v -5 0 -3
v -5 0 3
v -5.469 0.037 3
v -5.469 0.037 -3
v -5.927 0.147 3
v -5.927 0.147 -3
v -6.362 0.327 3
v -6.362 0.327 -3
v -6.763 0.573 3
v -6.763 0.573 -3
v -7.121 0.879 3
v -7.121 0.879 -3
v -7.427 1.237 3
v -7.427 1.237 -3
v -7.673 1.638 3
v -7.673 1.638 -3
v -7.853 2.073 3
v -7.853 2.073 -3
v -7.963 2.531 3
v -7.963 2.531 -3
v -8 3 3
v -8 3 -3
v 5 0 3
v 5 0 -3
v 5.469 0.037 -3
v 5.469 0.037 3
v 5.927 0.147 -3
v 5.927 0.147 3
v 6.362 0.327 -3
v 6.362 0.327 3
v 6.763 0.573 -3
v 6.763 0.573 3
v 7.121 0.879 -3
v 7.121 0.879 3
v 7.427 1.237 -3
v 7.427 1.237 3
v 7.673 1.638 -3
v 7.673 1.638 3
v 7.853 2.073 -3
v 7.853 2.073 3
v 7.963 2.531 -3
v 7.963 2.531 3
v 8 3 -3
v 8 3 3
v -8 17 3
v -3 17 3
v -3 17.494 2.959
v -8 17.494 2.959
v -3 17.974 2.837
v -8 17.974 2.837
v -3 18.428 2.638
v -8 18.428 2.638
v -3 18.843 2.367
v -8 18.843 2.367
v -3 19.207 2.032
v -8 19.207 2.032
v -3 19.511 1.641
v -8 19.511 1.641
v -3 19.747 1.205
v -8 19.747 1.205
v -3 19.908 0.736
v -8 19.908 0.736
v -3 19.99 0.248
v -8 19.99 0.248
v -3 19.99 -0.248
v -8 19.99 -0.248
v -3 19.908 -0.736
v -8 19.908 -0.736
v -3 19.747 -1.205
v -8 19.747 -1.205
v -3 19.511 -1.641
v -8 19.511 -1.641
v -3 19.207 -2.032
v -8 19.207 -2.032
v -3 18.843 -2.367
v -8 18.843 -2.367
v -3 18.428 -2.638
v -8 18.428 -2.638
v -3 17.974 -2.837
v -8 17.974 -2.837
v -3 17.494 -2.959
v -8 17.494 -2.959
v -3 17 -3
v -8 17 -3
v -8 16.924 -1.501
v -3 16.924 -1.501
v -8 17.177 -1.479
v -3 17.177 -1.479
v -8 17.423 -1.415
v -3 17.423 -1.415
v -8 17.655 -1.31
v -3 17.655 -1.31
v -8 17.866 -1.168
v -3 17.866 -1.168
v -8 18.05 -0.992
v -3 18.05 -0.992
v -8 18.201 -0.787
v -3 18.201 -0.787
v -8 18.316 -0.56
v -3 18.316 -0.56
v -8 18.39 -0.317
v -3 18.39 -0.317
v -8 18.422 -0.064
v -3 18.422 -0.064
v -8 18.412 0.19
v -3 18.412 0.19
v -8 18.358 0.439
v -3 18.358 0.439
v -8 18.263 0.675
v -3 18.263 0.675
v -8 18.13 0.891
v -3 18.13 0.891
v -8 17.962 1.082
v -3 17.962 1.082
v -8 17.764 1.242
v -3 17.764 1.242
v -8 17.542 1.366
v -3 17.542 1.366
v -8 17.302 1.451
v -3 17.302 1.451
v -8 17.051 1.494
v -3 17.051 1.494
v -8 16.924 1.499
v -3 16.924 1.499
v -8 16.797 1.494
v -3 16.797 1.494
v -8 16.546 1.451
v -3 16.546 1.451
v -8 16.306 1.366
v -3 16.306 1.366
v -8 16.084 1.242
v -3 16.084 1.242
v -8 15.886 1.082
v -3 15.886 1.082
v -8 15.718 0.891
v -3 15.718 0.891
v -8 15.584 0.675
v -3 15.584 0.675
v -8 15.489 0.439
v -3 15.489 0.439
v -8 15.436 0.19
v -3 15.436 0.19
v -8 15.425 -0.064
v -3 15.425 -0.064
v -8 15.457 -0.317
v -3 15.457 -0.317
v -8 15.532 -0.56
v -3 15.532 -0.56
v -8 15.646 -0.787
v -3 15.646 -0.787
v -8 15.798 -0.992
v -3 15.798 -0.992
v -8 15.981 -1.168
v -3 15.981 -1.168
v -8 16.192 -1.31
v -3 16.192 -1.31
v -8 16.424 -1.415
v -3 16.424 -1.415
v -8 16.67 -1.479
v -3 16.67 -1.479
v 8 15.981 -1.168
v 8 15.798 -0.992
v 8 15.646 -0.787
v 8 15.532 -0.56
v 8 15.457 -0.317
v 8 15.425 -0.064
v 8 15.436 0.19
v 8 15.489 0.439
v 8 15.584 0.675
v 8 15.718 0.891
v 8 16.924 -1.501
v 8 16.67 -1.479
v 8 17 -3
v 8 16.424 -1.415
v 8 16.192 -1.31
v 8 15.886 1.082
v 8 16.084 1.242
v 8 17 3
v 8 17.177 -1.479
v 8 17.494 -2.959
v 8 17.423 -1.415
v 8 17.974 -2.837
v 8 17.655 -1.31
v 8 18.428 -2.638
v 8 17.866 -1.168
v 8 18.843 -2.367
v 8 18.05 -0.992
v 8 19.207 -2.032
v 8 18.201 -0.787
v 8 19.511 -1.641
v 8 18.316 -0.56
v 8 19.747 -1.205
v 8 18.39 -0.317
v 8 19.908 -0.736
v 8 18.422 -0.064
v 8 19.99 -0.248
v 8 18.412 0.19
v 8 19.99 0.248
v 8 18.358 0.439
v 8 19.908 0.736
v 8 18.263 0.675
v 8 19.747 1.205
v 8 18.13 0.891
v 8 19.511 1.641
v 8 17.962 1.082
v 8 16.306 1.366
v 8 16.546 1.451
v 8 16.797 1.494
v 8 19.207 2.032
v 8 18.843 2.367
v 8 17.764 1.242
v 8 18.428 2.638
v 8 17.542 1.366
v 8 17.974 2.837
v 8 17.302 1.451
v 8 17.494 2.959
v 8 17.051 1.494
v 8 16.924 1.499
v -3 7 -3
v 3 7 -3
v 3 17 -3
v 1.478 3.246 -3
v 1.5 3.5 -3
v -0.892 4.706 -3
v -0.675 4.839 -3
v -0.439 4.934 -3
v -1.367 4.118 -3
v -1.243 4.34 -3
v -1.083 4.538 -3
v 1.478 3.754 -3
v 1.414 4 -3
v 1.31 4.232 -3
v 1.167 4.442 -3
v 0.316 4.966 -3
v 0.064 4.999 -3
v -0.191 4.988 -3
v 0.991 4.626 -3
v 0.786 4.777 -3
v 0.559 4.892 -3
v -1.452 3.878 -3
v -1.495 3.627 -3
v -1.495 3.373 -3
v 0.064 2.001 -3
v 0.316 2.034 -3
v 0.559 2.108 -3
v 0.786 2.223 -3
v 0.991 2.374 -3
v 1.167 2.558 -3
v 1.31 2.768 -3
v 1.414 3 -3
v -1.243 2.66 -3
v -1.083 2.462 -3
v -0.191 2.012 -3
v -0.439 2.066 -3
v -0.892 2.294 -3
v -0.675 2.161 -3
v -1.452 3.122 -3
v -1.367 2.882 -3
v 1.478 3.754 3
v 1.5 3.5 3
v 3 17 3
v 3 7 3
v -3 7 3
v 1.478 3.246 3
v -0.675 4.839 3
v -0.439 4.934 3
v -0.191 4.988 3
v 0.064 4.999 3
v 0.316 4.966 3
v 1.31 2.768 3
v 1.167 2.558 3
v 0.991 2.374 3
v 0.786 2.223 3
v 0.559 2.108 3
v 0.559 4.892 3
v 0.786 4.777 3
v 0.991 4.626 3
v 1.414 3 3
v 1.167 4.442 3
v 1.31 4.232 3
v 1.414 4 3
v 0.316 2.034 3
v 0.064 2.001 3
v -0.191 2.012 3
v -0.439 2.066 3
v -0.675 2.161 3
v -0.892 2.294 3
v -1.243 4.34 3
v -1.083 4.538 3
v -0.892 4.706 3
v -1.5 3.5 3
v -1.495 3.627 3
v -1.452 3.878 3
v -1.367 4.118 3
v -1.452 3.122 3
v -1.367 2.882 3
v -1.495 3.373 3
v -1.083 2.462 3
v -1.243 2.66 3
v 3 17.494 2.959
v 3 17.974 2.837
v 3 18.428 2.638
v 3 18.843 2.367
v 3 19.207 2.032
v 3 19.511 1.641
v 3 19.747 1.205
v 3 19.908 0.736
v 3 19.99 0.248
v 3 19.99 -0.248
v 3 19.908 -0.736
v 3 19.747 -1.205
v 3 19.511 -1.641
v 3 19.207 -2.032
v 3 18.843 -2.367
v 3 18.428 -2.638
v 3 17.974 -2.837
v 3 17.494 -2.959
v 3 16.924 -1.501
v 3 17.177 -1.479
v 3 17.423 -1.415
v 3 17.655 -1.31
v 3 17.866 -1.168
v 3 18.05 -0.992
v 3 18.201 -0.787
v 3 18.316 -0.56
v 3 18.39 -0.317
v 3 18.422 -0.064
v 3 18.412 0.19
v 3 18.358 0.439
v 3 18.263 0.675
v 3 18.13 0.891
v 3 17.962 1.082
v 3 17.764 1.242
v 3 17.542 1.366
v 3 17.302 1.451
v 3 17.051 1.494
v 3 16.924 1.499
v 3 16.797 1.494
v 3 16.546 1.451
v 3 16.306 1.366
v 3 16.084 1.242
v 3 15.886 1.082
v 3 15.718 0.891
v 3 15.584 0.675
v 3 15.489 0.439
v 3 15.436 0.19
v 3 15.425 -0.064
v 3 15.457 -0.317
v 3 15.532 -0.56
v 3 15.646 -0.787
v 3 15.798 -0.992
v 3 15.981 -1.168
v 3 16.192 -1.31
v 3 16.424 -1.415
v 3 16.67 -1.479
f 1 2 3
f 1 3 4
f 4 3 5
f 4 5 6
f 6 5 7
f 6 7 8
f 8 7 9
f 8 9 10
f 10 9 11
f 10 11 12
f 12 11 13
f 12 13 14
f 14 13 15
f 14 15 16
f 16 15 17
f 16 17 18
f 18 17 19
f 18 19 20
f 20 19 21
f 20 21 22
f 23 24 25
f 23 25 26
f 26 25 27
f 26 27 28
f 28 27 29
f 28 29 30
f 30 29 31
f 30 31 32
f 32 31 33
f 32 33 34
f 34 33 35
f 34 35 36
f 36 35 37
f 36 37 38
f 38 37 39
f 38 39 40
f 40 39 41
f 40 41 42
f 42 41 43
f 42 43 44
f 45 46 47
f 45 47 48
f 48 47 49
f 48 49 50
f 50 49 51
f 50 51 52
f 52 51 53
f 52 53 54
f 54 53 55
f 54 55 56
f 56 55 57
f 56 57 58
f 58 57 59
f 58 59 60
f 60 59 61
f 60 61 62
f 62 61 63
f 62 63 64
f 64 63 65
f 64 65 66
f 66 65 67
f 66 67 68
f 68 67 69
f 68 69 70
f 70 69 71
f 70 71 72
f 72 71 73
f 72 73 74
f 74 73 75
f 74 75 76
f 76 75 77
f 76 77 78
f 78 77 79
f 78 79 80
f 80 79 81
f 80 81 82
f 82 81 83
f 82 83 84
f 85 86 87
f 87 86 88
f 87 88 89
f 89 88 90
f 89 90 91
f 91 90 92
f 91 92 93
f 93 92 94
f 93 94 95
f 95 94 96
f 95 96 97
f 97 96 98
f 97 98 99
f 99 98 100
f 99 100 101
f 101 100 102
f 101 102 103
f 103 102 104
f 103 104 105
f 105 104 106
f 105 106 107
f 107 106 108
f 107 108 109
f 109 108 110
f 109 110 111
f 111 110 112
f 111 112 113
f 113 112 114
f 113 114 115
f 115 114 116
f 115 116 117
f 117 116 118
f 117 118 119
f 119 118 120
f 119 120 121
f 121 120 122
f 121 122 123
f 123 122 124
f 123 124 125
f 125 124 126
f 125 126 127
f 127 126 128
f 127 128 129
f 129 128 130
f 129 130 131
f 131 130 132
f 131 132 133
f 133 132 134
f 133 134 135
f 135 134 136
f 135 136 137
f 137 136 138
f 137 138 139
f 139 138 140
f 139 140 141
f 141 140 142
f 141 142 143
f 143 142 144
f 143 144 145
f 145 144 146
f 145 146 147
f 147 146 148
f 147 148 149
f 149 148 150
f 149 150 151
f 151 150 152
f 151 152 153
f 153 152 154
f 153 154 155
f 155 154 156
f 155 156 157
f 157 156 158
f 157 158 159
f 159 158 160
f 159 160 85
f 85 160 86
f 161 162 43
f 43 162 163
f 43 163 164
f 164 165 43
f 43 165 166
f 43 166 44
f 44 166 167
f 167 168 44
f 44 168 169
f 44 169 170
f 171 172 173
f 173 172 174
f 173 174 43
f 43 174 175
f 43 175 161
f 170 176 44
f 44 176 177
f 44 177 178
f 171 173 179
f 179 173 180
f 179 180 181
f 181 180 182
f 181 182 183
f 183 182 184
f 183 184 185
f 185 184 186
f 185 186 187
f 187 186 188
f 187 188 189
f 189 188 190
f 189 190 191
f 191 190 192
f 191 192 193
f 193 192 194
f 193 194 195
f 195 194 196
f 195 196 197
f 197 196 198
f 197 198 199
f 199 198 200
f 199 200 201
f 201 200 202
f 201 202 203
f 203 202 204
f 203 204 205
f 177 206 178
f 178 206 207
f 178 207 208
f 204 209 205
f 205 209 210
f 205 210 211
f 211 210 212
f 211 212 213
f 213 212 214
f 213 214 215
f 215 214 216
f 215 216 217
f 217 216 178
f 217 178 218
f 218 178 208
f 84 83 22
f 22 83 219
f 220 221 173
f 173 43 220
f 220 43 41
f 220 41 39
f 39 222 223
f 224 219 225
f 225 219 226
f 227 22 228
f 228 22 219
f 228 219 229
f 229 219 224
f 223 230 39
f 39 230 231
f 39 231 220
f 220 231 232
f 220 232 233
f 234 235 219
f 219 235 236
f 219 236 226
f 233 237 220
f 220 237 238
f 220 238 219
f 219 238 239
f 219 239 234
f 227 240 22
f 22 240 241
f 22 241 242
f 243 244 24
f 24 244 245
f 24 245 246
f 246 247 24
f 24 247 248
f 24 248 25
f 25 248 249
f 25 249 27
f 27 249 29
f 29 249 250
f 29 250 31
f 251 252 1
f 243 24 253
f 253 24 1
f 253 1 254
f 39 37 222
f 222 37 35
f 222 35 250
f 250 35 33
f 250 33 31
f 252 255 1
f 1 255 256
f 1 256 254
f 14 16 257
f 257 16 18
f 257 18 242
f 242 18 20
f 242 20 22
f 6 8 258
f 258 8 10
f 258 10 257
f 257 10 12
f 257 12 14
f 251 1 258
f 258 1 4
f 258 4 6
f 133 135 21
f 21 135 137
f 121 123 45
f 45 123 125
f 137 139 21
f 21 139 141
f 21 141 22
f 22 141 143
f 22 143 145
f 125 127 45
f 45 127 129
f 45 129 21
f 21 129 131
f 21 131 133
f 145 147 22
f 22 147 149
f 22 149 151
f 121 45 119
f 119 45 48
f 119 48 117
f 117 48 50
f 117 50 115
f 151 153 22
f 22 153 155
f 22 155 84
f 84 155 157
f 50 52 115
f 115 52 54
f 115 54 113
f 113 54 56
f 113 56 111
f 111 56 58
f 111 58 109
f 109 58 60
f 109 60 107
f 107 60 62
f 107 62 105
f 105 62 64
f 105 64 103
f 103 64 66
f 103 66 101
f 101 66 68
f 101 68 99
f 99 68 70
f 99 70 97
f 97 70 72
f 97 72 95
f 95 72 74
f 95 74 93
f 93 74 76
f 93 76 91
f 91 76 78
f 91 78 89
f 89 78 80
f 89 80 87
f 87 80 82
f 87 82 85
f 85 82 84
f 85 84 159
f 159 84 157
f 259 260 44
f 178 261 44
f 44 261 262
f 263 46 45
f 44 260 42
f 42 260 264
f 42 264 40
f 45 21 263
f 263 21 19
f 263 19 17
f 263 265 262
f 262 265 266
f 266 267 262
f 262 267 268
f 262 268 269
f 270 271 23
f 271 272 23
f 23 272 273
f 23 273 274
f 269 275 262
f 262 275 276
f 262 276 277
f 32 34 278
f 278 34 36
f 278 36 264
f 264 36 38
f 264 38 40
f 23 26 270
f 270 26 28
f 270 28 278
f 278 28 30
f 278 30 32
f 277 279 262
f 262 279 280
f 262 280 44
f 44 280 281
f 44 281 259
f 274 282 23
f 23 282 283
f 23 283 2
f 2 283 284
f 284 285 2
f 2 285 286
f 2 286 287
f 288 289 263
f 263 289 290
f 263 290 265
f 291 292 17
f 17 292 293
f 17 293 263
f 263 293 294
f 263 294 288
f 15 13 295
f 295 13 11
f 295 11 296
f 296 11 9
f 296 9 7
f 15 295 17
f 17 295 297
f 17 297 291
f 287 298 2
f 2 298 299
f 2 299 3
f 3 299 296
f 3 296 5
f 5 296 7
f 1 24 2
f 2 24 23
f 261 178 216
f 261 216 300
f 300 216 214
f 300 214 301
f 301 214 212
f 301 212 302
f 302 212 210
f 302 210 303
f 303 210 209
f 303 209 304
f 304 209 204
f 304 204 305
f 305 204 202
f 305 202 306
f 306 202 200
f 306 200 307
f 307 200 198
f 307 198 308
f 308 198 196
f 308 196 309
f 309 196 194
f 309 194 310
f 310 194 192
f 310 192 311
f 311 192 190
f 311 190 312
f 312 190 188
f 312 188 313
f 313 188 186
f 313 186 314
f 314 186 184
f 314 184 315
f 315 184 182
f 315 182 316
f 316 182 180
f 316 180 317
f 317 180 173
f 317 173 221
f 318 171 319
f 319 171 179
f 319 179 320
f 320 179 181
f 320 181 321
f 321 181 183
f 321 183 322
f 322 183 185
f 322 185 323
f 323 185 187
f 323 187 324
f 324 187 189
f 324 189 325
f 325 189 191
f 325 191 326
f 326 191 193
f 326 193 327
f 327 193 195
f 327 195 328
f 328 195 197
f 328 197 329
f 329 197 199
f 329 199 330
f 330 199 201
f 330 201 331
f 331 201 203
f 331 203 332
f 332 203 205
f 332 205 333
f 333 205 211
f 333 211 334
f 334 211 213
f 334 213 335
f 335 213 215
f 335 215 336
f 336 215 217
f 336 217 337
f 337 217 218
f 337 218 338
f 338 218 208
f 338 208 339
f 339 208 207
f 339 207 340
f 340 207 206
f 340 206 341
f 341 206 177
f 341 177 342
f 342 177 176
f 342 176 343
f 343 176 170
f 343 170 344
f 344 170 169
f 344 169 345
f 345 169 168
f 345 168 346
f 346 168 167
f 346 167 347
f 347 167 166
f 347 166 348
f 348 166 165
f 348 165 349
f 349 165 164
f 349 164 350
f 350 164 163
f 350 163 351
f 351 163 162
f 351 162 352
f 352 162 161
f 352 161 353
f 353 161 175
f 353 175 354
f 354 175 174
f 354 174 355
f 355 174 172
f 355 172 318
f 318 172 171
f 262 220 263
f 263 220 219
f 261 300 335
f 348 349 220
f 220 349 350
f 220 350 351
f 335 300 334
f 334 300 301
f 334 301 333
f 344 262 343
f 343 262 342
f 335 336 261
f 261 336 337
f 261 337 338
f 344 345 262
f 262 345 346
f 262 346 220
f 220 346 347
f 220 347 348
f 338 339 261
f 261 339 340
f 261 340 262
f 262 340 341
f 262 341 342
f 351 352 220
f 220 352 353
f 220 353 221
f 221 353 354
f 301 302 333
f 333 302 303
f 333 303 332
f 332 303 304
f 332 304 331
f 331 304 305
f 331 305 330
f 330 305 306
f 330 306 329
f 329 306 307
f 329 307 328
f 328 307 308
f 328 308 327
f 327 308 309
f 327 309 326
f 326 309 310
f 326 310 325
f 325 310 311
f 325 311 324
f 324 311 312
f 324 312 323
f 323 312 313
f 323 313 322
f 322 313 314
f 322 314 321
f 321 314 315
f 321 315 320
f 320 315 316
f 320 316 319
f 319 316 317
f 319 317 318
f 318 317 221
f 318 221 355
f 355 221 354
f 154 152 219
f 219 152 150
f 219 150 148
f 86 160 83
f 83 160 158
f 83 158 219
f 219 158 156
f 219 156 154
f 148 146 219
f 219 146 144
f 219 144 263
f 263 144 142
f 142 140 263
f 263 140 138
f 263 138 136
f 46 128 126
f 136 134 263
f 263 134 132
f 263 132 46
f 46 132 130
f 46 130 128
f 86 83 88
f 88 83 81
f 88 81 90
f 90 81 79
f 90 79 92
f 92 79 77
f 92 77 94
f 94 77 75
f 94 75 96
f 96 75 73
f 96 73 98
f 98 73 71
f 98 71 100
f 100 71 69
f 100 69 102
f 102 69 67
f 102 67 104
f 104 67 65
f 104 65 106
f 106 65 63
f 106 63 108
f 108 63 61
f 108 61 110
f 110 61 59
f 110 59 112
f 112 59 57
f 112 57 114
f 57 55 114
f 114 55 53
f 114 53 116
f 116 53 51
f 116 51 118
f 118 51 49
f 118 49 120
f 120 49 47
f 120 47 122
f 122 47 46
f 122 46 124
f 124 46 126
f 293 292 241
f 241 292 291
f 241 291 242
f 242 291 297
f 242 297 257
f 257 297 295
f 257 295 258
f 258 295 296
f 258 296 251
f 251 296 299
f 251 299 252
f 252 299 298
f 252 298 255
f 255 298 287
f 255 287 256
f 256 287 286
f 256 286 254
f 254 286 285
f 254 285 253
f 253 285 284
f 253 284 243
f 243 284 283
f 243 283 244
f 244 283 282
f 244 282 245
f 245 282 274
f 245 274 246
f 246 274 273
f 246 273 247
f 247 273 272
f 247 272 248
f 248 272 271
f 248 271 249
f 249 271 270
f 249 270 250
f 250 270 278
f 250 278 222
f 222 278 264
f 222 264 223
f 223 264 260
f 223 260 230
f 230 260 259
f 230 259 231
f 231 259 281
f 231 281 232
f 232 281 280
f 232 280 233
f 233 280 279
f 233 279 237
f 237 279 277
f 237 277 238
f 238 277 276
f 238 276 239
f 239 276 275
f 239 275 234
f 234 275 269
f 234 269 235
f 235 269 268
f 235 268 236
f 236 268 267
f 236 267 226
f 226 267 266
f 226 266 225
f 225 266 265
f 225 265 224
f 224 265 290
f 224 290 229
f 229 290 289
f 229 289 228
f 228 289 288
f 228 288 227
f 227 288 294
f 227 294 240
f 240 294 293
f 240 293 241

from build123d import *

# Parameters (mm, degrees)
SKETCH_1_W          = 16
SKETCH_1_H          = 6
EXTRUDE_1_DEPTH     = 7
SKETCH_3_R          = 1.5
EXTRUDE_2_DEPTH     = 8
SKETCH_3_2_R        = 1.5
CUT_EXTRUDE_2_DEPTH = 3
SKETCH_9_R          = 1.5
CUT_EXTRUDE_3_DEPTH = 10
FILLET_4_R          = 3
FILLET_5_R          = 3


with BuildPart() as part:
    # 草图1 → 凸台-拉伸1 (new body)
    with BuildSketch(Plane(origin=(0, 0, 0), x_dir=(1, 0, 0), z_dir=(0, 1, 0))):
        Rectangle(SKETCH_1_W, SKETCH_1_H)
    extrude(amount=EXTRUDE_1_DEPTH)

    # 草图3 → 凸台-拉伸2 (add, symmetric)
    with BuildSketch(Plane.ZY):
        with BuildLine():
            Line((3, 7), (-3, 7))
            Line((-3, 7), (-3, 17))
            ThreePointArc((-3, 17), (0, 20), (3, 17))
            Line((3, 17), (3, 7))
        make_face()
        with Locations((-0.000581651, 16.923736161)):
            Circle(SKETCH_3_R, mode=Mode.SUBTRACT)
    extrude(amount=EXTRUDE_2_DEPTH, both=True)

    # 草图3<2> → 切除-拉伸2 (cut, symmetric)
    with BuildSketch(Plane.ZY):
        with BuildLine():
            Line((3, 7), (-3, 7))
            Line((-3, 7), (-3, 17))
            ThreePointArc((-3, 17), (0, 20), (3, 17))
            Line((3, 17), (3, 7))
        make_face()
        with Locations((-0.000581651, 16.923736161)):
            Circle(SKETCH_3_2_R, mode=Mode.SUBTRACT)
    extrude(amount=CUT_EXTRUDE_2_DEPTH, both=True, mode=Mode.SUBTRACT)

    # 草图9 → 切除-拉伸3 (cut)
    with BuildSketch(Plane.XY.offset(5)):
        with Locations((0, 3.5)):
            Circle(SKETCH_9_R)
    extrude(amount=-CUT_EXTRUDE_3_DEPTH, mode=Mode.SUBTRACT)

    # 圆角4
    fillet_4_edges = [part.edges().sort_by_distance(p)[0] for p in [
        (8, 0, 0),
    ]]
    fillet(fillet_4_edges, radius=FILLET_4_R)

    # 圆角5
    fillet_5_edges = [part.edges().sort_by_distance(p)[0] for p in [
        (-8, 0, 0),
    ]]
    fillet(fillet_5_edges, radius=FILLET_5_R)


solid = part.part
